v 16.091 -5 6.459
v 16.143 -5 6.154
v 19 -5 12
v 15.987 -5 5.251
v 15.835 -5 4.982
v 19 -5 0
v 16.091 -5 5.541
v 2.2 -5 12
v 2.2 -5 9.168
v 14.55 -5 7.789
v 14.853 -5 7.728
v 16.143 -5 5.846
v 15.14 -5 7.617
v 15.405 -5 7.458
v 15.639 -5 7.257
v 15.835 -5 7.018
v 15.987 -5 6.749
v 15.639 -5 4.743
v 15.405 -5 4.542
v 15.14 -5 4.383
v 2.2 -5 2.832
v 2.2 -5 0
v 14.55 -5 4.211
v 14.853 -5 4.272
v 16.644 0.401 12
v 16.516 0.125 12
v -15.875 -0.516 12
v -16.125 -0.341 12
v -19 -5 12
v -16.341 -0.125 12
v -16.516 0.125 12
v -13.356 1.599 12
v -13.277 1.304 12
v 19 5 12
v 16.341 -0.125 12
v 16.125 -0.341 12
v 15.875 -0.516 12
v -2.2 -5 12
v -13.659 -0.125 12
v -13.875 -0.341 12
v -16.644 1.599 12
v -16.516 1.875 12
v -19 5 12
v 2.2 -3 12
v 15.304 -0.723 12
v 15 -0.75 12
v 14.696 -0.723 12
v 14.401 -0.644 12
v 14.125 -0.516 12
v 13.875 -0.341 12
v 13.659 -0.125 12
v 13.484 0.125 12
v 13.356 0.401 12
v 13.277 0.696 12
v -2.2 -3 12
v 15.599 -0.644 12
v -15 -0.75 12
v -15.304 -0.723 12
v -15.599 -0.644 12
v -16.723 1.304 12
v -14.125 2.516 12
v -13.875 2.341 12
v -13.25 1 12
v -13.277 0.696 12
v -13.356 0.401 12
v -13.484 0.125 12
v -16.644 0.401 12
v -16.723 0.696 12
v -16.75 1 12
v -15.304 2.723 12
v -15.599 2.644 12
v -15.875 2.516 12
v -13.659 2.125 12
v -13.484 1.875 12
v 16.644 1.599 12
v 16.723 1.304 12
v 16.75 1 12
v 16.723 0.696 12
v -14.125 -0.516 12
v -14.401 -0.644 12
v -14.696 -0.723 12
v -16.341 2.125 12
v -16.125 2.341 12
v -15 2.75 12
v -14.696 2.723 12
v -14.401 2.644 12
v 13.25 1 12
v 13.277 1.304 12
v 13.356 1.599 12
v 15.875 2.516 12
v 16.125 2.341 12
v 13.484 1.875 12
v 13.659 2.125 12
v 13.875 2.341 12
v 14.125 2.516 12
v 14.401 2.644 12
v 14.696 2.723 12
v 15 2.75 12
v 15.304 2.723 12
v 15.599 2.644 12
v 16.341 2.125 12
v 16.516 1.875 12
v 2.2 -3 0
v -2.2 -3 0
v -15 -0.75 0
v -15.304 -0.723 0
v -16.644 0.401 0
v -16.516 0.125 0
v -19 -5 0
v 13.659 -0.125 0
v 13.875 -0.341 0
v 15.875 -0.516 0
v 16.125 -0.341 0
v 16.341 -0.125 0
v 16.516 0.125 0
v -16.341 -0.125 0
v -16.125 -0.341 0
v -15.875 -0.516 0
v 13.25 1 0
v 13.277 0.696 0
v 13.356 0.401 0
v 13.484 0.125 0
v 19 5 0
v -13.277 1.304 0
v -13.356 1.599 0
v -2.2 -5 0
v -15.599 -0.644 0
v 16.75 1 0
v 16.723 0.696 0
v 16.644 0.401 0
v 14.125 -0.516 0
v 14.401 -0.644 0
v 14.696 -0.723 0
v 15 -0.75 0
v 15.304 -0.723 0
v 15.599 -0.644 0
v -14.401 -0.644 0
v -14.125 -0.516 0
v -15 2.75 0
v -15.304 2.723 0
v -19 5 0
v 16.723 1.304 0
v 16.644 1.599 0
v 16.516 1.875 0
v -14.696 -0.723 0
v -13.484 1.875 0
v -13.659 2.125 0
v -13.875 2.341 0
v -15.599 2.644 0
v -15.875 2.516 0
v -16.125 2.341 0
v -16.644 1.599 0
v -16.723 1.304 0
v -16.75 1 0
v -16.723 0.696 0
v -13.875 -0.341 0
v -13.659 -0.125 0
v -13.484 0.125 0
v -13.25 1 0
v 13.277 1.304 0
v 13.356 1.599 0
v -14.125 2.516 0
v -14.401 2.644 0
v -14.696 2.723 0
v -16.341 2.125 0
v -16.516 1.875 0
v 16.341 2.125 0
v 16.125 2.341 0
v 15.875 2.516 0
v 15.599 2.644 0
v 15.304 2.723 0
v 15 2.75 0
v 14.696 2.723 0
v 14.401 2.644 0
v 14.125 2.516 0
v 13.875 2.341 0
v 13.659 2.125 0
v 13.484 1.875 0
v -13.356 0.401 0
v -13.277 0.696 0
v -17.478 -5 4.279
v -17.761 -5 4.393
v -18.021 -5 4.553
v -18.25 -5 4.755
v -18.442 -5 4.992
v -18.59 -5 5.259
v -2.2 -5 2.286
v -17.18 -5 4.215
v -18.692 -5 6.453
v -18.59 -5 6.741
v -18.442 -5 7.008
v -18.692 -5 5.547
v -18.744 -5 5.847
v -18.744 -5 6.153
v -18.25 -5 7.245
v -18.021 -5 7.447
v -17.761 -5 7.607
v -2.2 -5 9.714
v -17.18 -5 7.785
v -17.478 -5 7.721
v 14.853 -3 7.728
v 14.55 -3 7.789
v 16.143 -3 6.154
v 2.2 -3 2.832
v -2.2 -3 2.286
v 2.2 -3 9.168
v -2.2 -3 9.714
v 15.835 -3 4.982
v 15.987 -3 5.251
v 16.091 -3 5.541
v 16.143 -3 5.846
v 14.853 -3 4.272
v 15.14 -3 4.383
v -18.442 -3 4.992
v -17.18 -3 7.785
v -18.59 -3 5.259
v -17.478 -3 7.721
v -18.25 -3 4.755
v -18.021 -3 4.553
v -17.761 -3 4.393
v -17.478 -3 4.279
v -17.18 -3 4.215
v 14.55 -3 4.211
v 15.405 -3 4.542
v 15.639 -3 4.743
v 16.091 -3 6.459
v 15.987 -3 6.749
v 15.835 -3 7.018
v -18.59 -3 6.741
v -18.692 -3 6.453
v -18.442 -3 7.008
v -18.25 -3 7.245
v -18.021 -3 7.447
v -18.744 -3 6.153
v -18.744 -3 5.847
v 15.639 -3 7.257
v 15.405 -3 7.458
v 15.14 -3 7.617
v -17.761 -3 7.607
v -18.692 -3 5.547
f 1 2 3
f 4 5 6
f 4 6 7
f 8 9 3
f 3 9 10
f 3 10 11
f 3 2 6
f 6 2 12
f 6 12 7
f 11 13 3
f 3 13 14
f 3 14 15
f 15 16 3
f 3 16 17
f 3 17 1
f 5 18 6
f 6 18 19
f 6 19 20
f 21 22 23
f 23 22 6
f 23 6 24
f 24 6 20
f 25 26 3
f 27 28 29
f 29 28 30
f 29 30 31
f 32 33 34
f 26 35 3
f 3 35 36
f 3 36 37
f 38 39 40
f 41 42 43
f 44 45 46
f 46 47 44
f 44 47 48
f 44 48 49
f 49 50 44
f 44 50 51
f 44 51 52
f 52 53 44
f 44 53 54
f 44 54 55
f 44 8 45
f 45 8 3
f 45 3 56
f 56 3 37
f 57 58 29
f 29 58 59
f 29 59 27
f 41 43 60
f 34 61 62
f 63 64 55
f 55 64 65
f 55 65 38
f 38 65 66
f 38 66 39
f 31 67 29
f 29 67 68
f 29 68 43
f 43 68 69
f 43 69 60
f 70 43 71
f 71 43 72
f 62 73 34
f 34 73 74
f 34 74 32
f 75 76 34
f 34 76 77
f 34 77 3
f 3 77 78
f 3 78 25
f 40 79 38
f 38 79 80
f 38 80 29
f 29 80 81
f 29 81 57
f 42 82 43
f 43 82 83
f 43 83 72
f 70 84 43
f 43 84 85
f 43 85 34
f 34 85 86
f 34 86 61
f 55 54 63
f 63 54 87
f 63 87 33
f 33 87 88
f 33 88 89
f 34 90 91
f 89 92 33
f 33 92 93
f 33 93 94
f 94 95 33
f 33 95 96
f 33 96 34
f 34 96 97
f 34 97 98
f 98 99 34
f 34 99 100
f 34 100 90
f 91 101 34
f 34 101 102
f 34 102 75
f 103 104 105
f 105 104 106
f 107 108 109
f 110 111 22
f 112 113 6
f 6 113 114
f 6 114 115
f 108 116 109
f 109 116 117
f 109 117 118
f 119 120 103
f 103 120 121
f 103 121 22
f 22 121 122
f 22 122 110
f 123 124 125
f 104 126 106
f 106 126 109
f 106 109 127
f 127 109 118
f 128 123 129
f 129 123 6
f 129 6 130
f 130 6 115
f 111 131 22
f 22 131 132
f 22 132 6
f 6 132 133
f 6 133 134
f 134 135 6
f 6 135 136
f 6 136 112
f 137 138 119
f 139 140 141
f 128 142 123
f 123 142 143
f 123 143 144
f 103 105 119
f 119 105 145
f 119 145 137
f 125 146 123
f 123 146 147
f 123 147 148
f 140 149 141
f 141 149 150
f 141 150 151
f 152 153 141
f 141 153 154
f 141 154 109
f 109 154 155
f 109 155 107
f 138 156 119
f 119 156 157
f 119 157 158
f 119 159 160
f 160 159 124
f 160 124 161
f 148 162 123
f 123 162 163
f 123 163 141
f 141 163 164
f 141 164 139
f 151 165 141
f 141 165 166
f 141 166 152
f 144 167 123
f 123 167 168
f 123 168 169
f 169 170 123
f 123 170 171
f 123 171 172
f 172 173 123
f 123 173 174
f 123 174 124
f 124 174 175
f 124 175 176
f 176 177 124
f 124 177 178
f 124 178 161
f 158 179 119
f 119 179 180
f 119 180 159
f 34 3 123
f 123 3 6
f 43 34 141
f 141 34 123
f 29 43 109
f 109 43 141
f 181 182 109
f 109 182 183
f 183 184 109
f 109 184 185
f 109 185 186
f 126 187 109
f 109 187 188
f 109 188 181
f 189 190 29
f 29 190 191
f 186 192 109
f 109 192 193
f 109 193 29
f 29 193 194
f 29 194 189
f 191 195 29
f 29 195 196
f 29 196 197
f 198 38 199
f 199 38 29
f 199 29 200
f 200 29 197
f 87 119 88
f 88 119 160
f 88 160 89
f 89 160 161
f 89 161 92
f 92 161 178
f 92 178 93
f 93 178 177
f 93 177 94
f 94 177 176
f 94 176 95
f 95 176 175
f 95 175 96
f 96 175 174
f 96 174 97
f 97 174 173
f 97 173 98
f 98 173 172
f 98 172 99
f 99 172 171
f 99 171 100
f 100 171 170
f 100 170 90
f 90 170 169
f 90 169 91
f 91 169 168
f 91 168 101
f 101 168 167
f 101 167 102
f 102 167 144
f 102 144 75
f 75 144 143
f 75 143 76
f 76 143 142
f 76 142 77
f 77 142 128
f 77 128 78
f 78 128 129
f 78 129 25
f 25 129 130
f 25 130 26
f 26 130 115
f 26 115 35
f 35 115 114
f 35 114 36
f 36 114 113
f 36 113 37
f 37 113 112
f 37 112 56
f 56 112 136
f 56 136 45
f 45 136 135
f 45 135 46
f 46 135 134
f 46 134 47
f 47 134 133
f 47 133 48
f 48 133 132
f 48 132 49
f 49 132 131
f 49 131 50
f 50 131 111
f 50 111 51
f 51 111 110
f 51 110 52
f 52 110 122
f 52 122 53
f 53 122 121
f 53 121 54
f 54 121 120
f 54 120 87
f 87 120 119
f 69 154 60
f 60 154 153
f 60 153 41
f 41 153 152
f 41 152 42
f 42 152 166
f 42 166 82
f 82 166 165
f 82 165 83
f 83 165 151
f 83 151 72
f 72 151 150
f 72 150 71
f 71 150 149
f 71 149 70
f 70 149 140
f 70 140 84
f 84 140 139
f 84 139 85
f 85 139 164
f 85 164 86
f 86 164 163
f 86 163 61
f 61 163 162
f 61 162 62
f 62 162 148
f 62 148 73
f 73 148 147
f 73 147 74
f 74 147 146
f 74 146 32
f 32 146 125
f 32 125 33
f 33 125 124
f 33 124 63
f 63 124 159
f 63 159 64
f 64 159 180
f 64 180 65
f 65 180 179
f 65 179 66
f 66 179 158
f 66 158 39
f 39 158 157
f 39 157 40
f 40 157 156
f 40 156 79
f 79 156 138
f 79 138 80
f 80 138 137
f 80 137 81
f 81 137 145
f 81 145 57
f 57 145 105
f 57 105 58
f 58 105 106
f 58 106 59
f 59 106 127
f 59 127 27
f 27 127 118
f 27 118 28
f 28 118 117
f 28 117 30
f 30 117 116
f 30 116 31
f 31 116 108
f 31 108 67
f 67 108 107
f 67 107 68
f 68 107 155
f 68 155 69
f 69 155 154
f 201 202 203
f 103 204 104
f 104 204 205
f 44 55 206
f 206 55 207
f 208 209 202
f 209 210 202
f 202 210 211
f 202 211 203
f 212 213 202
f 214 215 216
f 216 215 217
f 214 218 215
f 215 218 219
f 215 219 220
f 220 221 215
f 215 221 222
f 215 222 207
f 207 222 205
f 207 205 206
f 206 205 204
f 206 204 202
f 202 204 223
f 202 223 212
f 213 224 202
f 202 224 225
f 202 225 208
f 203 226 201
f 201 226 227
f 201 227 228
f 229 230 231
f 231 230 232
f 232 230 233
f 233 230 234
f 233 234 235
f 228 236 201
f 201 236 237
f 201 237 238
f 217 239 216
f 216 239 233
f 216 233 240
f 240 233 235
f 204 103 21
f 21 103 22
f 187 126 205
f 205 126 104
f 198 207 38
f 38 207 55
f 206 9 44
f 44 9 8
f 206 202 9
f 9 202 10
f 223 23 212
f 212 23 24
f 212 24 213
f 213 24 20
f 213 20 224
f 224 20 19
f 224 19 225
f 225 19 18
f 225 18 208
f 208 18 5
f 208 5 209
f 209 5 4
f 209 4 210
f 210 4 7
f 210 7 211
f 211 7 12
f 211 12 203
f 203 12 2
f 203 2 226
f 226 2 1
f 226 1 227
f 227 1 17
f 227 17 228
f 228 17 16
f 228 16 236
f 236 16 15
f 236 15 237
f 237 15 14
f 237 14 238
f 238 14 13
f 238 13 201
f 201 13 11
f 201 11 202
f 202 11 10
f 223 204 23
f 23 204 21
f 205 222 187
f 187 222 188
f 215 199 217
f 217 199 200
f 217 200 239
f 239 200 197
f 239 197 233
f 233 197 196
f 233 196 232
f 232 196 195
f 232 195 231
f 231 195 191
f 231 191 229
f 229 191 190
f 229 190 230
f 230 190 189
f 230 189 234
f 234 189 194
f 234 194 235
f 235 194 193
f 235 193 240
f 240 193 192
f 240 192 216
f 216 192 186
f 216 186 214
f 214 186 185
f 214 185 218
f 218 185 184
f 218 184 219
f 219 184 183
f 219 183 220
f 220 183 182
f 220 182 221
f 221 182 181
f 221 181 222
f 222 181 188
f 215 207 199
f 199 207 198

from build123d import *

# Parameters (mm, degrees)
SKETCH1_W           = 38
SKETCH1_H           = 10
SKETCH1_R           = 1.75
BOSS_EXTRUDE1_DEPTH = 12
CUT_EXTRUDE3_DEPTH  = 2


with BuildPart() as part:
    # Sketch1 → Boss-Extrude1 (new body)
    with BuildSketch(Plane.XY):
        Rectangle(SKETCH1_W, SKETCH1_H)
        with Locations((15, 1)):
            Circle(SKETCH1_R, mode=Mode.SUBTRACT)
        with Locations((-15, 1)):
            Circle(SKETCH1_R, mode=Mode.SUBTRACT)
    extrude(amount=BOSS_EXTRUDE1_DEPTH)

    # Sketch2 → Cut-Extrude3 (cut)
    with BuildSketch(Plane.XZ.offset(5)):
        with BuildLine():
            Line((2.2, -0.05), (2.2, 2.831644402))
            Line((2.2, 2.831644402), (14.549818203, 4.211125302))
            ThreePointArc((14.549818203, 4.211125302), (16.15, 6), (14.549818203, 7.788874698))
            Line((14.549818203, 7.788874698), (2.2, 9.168355598))
            Line((2.2, 9.168355598), (2.2, 12.75))
            ThreePointArc((2.2, 12.75), (0, 14.95), (-2.2, 12.75))
            Line((-2.2, 12.75), (-2.2, 9.713852446))
            Line((-2.2, 9.713852446), (-17.179844816, 7.785265067))
            ThreePointArc((-17.179844816, 7.785265067), (-18.75, 6), (-17.179844816, 4.214734933))
            Line((-17.179844816, 4.214734933), (-2.2, 2.286147554))
            Line((-2.2, 2.286147554), (-2.2, -0.05))
            ThreePointArc((-2.2, -0.05), (0, -2.25), (2.2, -0.05))
        make_face()
    extrude(amount=-CUT_EXTRUDE3_DEPTH, mode=Mode.SUBTRACT)


solid = part.part
